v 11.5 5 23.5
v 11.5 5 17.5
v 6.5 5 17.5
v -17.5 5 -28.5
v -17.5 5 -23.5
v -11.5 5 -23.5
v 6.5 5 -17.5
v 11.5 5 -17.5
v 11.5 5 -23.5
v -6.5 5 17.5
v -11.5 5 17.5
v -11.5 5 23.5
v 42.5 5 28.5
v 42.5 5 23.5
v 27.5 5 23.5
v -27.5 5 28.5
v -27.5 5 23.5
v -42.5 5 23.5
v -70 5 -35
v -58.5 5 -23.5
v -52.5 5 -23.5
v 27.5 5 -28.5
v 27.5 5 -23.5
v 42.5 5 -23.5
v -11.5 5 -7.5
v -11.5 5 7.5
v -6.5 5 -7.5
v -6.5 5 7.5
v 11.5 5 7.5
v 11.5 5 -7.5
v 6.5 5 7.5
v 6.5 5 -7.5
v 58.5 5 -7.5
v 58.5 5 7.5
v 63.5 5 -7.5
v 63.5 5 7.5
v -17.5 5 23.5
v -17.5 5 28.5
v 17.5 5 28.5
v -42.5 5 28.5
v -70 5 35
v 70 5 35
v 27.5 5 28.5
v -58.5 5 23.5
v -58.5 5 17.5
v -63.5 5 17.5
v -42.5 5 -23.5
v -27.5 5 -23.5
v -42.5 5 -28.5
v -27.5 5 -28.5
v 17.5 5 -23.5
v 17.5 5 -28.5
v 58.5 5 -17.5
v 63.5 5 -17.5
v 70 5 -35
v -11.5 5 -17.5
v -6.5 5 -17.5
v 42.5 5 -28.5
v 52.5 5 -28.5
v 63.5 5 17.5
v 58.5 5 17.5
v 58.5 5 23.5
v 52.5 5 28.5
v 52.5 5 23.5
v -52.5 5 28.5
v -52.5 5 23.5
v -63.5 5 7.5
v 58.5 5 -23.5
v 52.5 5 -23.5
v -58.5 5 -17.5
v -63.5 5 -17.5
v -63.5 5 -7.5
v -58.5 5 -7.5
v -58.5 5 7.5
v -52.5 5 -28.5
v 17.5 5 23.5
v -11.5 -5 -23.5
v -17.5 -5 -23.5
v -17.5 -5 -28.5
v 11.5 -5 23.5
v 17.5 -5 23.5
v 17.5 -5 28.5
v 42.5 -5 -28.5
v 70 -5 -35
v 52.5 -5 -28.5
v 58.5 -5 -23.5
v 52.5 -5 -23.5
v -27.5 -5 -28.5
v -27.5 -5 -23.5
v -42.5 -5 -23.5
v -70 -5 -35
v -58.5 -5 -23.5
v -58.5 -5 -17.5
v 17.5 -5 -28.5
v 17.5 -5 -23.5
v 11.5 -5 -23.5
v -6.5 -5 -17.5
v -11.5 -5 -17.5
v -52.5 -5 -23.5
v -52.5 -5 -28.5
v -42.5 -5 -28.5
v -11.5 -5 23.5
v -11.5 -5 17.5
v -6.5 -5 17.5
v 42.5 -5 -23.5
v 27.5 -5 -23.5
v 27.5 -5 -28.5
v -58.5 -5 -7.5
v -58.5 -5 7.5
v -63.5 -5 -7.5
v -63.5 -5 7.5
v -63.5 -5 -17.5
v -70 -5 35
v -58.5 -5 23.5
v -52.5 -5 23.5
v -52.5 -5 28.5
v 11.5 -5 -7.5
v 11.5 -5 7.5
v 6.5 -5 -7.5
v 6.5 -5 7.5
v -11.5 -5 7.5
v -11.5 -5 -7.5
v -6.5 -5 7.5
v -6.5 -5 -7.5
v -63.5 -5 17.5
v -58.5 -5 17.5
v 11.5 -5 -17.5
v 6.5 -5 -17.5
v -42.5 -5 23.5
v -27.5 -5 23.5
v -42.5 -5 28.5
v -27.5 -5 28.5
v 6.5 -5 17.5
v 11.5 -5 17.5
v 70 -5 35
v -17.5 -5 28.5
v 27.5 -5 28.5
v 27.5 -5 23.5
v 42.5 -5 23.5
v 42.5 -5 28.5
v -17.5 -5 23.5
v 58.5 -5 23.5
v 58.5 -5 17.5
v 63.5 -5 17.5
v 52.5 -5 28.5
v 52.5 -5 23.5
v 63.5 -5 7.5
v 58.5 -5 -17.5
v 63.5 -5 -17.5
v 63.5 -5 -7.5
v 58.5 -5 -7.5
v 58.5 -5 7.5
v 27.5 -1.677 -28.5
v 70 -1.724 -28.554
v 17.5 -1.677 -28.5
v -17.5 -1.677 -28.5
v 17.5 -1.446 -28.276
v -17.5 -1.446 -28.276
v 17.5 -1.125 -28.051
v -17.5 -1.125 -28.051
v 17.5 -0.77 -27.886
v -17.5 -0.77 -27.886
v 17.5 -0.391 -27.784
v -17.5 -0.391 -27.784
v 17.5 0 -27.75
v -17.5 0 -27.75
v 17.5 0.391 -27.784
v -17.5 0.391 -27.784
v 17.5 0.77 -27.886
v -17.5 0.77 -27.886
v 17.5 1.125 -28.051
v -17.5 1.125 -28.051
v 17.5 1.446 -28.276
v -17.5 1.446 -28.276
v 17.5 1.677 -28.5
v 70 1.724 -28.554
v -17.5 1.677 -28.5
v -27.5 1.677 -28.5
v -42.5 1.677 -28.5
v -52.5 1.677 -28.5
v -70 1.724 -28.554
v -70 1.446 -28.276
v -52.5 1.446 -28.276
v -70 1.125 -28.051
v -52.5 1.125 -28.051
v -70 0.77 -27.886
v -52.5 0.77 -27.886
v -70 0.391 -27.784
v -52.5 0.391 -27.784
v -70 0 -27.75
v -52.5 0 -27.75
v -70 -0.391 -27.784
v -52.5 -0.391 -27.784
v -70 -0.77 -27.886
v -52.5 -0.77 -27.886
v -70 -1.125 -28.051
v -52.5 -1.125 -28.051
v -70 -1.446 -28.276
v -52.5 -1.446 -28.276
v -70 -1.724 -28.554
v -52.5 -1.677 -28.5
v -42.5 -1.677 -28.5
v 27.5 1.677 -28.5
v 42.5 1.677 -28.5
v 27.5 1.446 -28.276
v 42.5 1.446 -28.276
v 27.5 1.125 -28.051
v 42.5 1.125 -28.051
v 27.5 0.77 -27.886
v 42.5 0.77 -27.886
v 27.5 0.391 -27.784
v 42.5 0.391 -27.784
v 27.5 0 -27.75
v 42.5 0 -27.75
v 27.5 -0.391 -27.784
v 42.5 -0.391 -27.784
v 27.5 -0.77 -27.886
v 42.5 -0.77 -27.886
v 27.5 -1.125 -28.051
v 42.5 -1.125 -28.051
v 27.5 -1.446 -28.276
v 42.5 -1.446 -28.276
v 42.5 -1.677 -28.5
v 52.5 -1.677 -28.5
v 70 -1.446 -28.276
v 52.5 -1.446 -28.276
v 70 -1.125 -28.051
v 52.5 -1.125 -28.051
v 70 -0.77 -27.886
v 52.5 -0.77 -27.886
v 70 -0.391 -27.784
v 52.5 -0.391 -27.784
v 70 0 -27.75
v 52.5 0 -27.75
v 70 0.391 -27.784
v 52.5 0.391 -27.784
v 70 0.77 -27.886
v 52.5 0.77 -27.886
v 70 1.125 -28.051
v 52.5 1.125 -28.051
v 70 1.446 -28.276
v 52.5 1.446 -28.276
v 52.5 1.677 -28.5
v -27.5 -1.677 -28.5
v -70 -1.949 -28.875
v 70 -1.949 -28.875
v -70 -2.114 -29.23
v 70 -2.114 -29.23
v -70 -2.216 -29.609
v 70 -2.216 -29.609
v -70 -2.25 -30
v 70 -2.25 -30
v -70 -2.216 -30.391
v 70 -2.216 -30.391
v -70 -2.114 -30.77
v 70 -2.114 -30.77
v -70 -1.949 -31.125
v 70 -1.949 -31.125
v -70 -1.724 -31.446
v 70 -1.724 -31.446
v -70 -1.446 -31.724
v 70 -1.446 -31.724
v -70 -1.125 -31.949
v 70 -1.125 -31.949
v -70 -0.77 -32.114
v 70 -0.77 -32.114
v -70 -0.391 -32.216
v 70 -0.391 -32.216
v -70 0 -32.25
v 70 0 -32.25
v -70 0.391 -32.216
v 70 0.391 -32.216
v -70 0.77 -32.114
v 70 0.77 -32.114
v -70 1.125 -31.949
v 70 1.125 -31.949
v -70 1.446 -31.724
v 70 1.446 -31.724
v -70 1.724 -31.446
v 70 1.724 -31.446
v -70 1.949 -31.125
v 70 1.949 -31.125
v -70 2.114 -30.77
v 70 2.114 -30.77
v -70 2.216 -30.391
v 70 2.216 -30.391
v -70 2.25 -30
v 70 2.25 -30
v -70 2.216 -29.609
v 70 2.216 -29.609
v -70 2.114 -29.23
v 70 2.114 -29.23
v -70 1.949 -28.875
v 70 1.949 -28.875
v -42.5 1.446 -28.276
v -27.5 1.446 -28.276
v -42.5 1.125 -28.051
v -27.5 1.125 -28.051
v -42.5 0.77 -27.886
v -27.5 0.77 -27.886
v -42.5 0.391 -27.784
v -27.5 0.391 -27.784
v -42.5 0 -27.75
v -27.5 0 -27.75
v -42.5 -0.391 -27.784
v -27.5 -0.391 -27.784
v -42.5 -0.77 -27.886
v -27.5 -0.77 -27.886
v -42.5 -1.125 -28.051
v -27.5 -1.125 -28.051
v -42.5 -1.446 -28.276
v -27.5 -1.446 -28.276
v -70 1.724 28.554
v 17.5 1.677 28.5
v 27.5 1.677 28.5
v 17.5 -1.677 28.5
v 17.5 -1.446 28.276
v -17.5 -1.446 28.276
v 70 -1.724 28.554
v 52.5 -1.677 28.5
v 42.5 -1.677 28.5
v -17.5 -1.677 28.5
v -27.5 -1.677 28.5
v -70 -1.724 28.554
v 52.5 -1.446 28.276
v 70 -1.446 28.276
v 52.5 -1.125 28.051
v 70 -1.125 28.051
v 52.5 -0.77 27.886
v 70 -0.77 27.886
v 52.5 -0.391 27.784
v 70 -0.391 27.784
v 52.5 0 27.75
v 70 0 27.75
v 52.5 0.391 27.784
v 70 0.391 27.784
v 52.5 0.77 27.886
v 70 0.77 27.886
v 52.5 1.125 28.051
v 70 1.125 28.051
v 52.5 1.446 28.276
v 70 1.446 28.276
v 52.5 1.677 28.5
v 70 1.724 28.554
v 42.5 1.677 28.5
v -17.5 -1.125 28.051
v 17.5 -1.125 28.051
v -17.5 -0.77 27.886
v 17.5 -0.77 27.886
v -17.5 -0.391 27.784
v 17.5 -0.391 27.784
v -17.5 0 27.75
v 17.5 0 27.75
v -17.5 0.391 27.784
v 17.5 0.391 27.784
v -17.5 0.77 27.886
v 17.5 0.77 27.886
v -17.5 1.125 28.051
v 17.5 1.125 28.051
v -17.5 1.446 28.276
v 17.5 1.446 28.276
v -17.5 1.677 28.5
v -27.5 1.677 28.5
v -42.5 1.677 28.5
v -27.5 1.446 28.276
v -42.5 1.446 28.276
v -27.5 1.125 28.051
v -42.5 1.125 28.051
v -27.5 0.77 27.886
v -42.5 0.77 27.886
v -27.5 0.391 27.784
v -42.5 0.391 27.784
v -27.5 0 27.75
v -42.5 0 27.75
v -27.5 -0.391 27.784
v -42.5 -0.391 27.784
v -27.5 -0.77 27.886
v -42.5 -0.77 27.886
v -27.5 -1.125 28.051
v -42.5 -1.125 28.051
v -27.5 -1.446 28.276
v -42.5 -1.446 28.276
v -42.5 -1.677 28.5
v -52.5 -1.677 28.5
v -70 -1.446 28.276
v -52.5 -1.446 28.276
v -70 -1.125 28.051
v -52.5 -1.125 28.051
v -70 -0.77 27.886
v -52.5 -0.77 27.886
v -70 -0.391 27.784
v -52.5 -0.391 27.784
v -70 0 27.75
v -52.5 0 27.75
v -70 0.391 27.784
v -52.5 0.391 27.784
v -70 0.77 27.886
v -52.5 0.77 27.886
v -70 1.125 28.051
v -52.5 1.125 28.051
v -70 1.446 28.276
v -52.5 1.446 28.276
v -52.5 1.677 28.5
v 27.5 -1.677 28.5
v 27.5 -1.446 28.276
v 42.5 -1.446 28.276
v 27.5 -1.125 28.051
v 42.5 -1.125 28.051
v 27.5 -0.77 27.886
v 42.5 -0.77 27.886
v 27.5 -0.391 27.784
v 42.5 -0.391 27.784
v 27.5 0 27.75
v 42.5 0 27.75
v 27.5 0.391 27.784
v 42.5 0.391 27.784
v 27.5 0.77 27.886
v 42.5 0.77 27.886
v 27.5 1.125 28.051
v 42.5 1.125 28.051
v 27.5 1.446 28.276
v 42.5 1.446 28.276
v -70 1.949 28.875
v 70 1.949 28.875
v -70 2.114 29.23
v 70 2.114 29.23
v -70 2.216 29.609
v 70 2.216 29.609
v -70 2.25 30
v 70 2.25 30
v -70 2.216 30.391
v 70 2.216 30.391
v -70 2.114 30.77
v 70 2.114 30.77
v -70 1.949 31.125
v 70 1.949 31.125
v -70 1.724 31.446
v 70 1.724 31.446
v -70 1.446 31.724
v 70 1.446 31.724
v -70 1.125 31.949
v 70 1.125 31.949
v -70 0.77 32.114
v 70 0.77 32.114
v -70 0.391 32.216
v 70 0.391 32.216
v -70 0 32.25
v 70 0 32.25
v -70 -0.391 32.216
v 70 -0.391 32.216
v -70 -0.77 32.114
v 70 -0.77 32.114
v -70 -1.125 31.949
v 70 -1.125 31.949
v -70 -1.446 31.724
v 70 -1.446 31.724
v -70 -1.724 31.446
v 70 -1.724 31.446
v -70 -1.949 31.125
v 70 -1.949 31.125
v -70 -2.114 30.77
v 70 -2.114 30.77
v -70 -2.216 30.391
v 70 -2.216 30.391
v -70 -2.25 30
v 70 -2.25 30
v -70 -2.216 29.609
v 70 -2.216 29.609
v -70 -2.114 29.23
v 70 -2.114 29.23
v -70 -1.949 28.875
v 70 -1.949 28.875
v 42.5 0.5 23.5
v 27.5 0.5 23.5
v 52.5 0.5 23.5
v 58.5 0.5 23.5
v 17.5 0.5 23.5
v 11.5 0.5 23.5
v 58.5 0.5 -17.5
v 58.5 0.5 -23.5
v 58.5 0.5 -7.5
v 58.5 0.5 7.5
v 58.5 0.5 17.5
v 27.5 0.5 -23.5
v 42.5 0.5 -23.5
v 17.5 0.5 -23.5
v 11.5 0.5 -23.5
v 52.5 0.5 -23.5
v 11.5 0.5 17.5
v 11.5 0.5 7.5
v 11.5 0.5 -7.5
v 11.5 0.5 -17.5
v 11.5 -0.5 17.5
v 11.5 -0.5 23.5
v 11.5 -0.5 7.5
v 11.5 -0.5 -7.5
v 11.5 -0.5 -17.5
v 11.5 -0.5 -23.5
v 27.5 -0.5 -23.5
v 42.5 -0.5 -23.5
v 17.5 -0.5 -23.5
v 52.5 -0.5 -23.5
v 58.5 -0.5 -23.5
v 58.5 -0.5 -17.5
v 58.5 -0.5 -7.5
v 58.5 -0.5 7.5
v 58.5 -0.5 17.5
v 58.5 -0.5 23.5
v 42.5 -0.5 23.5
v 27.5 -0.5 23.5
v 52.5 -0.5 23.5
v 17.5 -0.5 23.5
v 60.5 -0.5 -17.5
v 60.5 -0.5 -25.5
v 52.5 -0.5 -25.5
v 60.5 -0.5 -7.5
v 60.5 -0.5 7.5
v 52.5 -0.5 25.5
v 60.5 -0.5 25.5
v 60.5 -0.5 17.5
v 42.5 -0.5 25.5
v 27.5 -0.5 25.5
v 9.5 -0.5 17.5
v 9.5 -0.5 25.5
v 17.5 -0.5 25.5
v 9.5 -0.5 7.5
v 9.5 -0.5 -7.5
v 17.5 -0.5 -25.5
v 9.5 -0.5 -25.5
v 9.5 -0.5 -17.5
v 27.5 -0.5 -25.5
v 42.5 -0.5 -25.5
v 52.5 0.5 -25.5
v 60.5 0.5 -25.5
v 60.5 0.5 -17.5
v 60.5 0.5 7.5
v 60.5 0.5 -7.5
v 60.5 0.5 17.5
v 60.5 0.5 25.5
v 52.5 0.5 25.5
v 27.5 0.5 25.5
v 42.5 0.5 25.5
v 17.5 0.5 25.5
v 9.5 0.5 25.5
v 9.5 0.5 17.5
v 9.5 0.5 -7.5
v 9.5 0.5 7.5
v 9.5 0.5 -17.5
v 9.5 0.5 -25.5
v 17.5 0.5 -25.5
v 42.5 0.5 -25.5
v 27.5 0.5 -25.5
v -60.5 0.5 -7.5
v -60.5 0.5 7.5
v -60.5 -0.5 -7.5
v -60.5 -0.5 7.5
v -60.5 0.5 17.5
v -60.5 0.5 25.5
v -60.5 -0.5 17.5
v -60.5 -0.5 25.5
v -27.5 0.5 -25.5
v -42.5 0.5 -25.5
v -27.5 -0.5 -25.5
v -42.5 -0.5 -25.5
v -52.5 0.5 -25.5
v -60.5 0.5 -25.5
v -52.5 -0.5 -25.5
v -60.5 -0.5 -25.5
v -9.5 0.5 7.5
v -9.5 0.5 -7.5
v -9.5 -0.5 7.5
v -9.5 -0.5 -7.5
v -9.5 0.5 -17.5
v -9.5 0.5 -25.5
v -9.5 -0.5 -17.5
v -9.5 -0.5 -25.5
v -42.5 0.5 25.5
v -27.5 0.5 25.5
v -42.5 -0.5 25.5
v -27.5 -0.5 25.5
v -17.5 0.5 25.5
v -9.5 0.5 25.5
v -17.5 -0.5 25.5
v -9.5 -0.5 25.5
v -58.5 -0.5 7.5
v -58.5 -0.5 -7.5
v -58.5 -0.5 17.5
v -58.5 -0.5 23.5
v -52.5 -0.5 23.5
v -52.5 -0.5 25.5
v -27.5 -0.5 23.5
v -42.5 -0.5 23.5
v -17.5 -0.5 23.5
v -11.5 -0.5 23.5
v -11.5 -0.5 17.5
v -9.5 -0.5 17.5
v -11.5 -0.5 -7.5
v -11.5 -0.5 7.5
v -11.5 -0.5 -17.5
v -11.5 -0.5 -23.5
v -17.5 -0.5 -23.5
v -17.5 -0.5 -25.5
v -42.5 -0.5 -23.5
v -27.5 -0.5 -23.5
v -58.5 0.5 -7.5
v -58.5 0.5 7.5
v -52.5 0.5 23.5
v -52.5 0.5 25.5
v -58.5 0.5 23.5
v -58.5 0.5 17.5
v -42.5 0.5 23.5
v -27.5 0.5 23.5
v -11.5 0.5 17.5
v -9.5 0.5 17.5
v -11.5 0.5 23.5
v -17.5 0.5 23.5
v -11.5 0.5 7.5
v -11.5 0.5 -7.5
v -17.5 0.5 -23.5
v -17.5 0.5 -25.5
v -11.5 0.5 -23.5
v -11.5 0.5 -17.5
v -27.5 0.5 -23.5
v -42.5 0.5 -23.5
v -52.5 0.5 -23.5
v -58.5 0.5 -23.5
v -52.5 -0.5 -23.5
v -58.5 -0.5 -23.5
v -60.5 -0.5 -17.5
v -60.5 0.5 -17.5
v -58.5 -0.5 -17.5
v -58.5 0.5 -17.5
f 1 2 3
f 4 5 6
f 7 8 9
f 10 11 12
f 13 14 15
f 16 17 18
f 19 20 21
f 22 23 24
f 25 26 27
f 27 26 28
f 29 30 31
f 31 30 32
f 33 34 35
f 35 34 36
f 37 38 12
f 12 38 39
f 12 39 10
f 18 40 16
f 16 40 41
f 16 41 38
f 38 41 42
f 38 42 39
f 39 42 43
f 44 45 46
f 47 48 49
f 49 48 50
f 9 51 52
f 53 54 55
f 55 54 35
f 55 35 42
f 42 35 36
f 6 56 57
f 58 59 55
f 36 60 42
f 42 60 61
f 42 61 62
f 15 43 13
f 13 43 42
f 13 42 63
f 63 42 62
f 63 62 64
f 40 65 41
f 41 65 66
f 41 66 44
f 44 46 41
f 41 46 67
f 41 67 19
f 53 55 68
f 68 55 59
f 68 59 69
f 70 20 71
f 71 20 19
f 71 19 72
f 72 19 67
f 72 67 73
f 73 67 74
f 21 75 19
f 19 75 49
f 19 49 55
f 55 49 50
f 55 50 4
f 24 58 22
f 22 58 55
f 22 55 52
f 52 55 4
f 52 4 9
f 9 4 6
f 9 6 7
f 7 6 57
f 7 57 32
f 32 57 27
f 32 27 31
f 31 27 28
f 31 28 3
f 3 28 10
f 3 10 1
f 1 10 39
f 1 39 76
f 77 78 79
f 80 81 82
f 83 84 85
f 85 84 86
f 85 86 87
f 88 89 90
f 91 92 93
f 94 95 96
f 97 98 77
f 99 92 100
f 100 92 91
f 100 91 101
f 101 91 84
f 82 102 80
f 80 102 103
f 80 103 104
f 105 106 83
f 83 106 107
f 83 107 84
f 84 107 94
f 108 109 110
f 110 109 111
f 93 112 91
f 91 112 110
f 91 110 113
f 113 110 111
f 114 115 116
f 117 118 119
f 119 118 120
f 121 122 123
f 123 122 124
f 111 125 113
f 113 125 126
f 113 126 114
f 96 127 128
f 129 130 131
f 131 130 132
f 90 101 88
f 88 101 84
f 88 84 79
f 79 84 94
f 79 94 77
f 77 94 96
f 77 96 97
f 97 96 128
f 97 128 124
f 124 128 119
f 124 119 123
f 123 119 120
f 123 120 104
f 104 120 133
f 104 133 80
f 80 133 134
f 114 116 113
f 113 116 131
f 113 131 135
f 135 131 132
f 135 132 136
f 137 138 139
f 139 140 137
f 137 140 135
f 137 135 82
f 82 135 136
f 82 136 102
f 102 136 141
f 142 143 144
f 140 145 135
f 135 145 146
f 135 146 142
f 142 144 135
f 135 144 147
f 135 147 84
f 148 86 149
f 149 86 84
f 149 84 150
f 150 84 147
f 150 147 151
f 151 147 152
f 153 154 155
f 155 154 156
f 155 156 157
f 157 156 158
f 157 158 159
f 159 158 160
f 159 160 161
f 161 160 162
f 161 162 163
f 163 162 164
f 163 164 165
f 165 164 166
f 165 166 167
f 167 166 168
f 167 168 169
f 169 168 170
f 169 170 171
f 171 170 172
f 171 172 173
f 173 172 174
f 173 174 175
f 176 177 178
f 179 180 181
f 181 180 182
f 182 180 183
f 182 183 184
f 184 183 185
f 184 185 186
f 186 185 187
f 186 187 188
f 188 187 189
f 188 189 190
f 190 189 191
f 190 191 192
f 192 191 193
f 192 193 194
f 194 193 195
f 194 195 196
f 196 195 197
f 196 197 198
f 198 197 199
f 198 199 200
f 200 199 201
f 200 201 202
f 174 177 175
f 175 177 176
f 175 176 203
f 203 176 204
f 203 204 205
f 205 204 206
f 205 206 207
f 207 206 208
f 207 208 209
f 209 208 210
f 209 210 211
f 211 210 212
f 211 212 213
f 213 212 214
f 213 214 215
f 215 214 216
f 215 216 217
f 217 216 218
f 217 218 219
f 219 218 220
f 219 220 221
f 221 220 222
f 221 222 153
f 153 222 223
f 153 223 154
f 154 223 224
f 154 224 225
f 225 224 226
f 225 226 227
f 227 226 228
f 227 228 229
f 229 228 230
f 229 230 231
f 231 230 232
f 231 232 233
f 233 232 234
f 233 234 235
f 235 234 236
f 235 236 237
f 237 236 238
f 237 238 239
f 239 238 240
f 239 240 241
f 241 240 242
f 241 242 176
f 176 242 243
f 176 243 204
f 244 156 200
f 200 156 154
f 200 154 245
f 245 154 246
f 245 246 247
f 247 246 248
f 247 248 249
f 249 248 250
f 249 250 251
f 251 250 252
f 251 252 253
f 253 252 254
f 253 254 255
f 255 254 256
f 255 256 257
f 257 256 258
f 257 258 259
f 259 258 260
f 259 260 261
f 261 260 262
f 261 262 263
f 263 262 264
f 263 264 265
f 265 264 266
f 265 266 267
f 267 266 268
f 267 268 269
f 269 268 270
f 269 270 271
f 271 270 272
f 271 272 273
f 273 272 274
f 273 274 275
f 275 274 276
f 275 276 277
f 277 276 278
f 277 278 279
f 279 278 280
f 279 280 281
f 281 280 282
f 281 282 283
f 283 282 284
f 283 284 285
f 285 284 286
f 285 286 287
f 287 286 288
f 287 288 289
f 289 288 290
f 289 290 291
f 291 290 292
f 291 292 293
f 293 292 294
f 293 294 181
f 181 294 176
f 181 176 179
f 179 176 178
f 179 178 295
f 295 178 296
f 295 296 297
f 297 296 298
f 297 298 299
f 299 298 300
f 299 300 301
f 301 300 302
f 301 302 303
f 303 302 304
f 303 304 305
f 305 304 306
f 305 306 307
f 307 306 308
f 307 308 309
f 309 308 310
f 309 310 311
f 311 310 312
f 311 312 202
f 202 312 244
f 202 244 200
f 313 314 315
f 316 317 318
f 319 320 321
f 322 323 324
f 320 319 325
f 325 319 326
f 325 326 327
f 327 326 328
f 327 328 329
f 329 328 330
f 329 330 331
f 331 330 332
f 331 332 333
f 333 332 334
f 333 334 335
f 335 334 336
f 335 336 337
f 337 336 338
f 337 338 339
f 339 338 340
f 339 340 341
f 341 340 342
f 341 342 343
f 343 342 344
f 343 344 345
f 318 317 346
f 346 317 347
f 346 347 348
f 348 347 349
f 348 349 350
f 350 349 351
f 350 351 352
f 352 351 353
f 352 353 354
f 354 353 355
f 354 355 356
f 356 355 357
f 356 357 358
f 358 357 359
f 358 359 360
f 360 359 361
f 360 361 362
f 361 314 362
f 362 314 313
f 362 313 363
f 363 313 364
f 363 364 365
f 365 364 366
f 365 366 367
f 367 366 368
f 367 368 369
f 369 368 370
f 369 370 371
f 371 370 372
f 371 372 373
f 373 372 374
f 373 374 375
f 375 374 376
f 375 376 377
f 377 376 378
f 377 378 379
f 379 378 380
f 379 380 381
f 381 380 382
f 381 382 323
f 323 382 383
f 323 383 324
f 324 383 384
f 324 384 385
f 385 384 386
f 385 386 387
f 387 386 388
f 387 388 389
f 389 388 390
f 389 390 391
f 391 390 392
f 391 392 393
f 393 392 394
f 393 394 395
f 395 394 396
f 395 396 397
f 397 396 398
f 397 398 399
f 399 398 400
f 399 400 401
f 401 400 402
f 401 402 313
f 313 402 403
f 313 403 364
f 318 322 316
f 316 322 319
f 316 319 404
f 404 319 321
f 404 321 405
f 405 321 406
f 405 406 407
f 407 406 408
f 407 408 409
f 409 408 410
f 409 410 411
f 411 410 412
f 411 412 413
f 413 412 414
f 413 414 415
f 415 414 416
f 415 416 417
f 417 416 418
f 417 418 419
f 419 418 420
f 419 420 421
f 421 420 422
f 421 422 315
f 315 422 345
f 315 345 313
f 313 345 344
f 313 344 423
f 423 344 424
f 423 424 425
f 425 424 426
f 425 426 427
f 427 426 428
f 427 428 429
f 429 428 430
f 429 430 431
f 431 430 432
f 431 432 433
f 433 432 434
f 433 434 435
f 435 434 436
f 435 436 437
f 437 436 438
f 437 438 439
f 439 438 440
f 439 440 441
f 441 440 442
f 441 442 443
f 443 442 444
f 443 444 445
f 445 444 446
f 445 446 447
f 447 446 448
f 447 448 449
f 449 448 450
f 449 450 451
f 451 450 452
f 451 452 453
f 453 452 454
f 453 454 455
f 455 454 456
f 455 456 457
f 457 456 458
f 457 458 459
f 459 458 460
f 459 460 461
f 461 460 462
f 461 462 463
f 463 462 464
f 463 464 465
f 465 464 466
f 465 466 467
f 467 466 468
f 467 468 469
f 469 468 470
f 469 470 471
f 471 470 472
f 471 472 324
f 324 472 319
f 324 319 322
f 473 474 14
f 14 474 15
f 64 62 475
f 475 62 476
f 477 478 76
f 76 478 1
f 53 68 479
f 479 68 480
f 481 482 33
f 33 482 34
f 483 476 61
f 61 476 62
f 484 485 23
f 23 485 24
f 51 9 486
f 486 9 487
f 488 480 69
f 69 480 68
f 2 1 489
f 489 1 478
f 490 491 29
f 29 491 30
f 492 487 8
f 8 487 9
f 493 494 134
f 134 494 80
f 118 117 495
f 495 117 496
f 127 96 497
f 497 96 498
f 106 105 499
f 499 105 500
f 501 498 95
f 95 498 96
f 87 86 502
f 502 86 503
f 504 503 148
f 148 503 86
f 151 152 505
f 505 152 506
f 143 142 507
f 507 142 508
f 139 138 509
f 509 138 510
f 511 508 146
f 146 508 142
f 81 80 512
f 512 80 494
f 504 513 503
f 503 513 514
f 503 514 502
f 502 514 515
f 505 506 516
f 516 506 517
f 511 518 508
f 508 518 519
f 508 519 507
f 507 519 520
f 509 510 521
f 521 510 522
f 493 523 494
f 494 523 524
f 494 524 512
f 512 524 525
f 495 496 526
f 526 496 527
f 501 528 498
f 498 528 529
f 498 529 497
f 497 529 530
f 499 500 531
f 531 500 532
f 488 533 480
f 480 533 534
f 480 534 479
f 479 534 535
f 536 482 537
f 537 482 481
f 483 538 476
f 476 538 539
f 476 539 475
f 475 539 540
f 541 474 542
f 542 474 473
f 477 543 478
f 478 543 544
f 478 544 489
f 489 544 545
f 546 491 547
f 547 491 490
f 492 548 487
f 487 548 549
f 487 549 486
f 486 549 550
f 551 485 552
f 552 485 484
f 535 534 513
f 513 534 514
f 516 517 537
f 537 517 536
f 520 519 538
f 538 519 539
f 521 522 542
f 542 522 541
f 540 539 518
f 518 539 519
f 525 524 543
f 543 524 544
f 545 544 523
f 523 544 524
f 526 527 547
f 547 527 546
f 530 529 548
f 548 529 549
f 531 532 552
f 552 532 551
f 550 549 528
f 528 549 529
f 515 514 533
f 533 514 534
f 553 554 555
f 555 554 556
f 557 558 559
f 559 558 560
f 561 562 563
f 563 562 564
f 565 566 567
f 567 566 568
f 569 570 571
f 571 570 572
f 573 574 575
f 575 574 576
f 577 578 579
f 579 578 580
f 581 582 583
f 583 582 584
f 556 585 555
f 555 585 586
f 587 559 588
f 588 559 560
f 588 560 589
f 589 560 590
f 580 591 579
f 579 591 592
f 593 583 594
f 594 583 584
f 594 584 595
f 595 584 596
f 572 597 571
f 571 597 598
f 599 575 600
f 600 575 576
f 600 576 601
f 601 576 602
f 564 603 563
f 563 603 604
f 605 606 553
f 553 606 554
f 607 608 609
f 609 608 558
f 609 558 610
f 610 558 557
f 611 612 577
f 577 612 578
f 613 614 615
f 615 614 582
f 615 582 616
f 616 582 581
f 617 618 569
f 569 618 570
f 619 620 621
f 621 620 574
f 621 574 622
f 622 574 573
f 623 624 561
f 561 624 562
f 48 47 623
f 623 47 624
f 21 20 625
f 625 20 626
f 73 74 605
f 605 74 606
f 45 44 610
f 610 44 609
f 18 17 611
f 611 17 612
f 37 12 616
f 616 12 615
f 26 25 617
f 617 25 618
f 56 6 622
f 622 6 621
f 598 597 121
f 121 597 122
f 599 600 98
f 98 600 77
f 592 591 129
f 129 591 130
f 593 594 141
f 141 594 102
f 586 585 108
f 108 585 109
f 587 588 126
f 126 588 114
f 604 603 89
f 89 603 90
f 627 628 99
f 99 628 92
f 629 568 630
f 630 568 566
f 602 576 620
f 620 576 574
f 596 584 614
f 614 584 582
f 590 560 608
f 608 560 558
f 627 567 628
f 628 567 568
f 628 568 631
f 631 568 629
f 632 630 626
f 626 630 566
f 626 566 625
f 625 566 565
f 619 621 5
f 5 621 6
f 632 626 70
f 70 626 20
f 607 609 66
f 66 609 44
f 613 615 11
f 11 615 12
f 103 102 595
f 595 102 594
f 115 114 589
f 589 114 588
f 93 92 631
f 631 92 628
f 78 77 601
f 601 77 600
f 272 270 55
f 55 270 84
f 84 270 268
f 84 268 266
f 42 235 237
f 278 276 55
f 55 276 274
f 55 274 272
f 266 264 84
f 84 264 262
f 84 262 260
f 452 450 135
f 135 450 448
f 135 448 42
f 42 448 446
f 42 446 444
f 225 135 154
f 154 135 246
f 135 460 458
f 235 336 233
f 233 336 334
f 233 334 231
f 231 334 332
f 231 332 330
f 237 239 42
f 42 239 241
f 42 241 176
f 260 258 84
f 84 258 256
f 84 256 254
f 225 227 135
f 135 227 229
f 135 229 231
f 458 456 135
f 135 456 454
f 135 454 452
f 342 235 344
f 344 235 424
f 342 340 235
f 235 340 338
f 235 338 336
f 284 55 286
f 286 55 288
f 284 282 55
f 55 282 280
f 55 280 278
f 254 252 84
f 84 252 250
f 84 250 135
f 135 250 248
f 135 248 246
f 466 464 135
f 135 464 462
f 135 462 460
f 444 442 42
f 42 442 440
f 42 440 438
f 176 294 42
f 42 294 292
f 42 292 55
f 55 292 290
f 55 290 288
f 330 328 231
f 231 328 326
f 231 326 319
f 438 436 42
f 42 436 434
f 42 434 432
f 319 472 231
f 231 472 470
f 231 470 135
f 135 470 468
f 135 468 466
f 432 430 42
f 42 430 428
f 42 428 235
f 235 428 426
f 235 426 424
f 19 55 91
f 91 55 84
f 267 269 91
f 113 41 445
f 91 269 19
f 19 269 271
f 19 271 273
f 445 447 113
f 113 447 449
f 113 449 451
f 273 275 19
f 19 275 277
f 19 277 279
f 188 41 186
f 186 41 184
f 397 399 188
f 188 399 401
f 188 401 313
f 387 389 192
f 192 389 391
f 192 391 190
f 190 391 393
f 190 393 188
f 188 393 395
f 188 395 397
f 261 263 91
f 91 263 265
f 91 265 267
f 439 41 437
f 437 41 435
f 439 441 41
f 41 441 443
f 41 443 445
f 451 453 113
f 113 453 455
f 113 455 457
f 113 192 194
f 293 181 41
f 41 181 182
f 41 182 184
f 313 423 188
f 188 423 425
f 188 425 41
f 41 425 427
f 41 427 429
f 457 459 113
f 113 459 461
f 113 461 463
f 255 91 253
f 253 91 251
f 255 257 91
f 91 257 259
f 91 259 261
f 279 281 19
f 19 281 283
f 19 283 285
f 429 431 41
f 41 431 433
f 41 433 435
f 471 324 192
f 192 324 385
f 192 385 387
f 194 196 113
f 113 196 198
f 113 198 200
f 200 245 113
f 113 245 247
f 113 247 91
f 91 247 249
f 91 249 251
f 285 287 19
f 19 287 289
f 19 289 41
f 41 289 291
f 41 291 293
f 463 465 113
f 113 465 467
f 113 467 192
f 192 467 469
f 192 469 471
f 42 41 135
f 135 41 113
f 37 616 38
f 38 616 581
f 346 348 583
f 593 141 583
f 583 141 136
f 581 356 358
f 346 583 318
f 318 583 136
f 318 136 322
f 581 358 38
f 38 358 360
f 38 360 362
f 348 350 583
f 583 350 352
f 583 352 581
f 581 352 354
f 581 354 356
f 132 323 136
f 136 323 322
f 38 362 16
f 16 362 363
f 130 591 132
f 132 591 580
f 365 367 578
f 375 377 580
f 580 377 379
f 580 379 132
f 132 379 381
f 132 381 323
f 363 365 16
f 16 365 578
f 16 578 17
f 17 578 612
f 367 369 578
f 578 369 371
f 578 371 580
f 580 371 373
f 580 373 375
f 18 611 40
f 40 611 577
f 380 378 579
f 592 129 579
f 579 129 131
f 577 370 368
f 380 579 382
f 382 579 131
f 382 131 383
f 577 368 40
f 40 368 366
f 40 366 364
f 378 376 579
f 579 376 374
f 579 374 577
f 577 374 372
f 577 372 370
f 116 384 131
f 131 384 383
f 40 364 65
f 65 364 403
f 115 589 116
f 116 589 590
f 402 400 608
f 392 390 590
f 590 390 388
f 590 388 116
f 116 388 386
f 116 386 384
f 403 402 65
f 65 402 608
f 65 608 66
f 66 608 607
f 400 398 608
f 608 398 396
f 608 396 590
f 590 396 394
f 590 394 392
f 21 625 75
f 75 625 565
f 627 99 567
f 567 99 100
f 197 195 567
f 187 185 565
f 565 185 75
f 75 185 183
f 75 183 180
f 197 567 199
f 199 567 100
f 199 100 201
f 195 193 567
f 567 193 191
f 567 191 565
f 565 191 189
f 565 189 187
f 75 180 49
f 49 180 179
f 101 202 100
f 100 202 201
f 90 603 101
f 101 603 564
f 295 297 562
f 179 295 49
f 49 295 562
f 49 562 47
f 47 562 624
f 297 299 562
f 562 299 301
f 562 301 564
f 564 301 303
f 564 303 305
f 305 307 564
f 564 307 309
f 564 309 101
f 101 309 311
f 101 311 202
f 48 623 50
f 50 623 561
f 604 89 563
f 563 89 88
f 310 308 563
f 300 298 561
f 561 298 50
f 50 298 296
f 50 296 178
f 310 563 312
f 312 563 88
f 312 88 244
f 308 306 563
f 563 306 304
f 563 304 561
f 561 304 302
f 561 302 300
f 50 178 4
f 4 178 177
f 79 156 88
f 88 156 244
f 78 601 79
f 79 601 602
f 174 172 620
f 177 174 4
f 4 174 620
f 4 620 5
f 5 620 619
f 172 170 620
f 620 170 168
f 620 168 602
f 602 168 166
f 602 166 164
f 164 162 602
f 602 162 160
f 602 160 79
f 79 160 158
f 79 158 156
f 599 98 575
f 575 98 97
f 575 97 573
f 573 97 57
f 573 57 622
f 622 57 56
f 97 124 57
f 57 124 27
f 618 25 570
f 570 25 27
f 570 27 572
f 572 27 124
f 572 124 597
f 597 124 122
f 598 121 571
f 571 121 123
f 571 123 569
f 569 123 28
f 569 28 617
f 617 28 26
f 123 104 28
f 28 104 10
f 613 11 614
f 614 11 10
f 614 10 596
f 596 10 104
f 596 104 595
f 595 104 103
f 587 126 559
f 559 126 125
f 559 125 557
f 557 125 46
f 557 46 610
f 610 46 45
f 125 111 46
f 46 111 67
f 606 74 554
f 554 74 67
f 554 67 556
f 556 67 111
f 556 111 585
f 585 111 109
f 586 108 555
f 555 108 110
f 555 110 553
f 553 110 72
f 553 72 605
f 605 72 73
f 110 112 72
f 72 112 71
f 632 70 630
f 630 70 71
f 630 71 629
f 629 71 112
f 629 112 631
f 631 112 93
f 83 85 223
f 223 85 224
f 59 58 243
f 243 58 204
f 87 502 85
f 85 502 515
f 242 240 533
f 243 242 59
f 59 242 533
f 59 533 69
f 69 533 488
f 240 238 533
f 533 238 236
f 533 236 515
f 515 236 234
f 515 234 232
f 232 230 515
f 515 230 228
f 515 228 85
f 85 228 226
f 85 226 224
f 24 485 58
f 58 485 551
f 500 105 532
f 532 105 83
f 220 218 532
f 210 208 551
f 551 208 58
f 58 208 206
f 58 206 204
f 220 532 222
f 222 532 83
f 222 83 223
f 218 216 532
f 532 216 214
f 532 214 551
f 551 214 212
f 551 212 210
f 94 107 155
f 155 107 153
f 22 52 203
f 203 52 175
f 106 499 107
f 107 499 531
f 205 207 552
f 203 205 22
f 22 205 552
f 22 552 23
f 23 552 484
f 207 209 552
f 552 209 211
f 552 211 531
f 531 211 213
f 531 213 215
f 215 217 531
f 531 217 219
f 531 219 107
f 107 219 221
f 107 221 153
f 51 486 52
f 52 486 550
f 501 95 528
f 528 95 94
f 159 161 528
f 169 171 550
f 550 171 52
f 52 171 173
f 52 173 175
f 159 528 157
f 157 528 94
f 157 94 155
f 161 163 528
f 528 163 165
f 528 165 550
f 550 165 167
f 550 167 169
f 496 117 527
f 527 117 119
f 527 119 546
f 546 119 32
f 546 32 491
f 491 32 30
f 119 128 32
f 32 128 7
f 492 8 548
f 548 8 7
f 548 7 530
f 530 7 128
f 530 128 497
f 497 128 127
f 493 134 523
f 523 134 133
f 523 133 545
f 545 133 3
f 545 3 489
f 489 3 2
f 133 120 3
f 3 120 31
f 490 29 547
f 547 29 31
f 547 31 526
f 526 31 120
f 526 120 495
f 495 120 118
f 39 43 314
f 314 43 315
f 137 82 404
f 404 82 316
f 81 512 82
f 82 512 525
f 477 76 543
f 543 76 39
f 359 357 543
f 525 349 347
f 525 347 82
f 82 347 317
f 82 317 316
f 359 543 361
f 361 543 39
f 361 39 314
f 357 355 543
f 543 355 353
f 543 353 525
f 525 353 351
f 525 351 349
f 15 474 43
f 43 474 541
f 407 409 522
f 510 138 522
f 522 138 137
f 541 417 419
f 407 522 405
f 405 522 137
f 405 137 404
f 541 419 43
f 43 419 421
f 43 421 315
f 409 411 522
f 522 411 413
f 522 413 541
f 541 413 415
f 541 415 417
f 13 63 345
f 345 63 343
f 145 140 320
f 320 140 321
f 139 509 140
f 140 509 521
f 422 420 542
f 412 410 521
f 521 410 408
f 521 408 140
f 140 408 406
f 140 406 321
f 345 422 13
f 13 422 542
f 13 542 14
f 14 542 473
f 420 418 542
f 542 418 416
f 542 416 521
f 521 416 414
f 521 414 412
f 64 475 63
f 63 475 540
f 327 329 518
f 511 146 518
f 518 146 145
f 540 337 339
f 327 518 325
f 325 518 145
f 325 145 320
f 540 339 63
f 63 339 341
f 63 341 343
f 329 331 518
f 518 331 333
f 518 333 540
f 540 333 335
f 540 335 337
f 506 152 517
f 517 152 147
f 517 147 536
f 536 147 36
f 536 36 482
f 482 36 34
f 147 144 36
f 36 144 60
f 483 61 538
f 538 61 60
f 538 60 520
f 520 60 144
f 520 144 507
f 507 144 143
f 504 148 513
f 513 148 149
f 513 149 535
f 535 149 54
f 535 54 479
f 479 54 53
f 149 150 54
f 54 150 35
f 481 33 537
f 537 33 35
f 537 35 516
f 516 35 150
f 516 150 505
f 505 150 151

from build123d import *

# Parameters (mm, degrees)
SKETCH1_W           = 140
SKETCH1_H           = 70
BOSS_EXTRUDE1_DEPTH = 5
SKETCH2_R           = 2.25
CUT_EXTRUDE1_DEPTH  = 145.395290782
SKETCH3_W           = 51
SKETCH3_H           = 51
CUT_EXTRUDE2_DEPTH  = 0.5
SKETCH4_W           = 47
SKETCH4_H           = 47
CUT_EXTRUDE3_DEPTH  = 79.89866919
SKETCH5_W           = 10
SKETCH5_H           = 5
SKETCH5_W_2         = 5
SKETCH5_H_2         = 10
CUT_EXTRUDE4_DEPTH  = 79.89866919


with BuildPart() as part:
    # Sketch1 → Boss-Extrude1 (new, symmetric)
    with BuildSketch(Plane(origin=(0, 0, 0), x_dir=(1, 0, 0), z_dir=(0, 1, 0))):
        Rectangle(SKETCH1_W, SKETCH1_H)
    extrude(amount=BOSS_EXTRUDE1_DEPTH, both=True)

    # Sketch2 → Cut-Extrude1 (cut, through all)
    with BuildSketch(Plane(origin=(70, 0, 0), x_dir=(0, 0, -1), z_dir=(1, 0, 0))):
        with Locations((-30, 0)):
            Circle(SKETCH2_R)
        with Locations((30, 0)):
            Circle(SKETCH2_R)
    extrude(amount=-CUT_EXTRUDE1_DEPTH, mode=Mode.SUBTRACT)

    # Sketch3 → Cut-Extrude2 (cut, symmetric)
    with BuildSketch(Plane(origin=(0, 0, 0), x_dir=(1, 0, 0), z_dir=(0, 1, 0))):
        with Locations((-35, 0)):
            Rectangle(SKETCH3_W, SKETCH3_H)
    cut_extrude2 = extrude(amount=CUT_EXTRUDE2_DEPTH, both=True, mode=Mode.SUBTRACT)

    # Sketch4 → Cut-Extrude3 (cut, through all)
    with BuildSketch(Plane(origin=(0, 5, 0), x_dir=(1, 0, 0), z_dir=(0, 1, 0))):
        with Locations((-35, 0)):
            Rectangle(SKETCH4_W, SKETCH4_H)
    cut_extrude3 = extrude(amount=-CUT_EXTRUDE3_DEPTH, mode=Mode.SUBTRACT)

    # Sketch5 → Cut-Extrude4 (cut, through all)
    with BuildSketch(Plane(origin=(0, 5, 0), x_dir=(1, 0, 0), z_dir=(0, 1, 0))):
        with Locations((-47.5, 26)):
            Rectangle(SKETCH5_W, SKETCH5_H)
        with Locations((-22.5, 26)):
            Rectangle(SKETCH5_W, SKETCH5_H)
        with Locations((-9, 12.5)):
            Rectangle(SKETCH5_W_2, SKETCH5_H_2)
        with Locations((-9, -12.5)):
            Rectangle(SKETCH5_W_2, SKETCH5_H_2)
        with Locations((-22.5, -26)):
            Rectangle(SKETCH5_W, SKETCH5_H)
        with Locations((-47.5, -26)):
            Rectangle(SKETCH5_W, SKETCH5_H)
        with Locations((-61, -12.5)):
            Rectangle(SKETCH5_W_2, SKETCH5_H_2)
        with Locations((-61, 12.5)):
            Rectangle(SKETCH5_W_2, SKETCH5_H_2)
    cut_extrude4 = extrude(amount=-CUT_EXTRUDE4_DEPTH, mode=Mode.SUBTRACT)

    # Mirror1: Cut-Extrude2, Cut-Extrude3, Cut-Extrude4 across plane
    add(cut_extrude2.mirror(Plane(origin=(0, 0, 0), x_dir=(0, 0, 1), z_dir=(1, 0, 0))), mode=Mode.SUBTRACT)
    add(cut_extrude3.mirror(Plane(origin=(0, 0, 0), x_dir=(0, 0, 1), z_dir=(1, 0, 0))), mode=Mode.SUBTRACT)
    add(cut_extrude4.mirror(Plane(origin=(0, 0, 0), x_dir=(0, 0, 1), z_dir=(1, 0, 0))), mode=Mode.SUBTRACT)


solid = part.part
